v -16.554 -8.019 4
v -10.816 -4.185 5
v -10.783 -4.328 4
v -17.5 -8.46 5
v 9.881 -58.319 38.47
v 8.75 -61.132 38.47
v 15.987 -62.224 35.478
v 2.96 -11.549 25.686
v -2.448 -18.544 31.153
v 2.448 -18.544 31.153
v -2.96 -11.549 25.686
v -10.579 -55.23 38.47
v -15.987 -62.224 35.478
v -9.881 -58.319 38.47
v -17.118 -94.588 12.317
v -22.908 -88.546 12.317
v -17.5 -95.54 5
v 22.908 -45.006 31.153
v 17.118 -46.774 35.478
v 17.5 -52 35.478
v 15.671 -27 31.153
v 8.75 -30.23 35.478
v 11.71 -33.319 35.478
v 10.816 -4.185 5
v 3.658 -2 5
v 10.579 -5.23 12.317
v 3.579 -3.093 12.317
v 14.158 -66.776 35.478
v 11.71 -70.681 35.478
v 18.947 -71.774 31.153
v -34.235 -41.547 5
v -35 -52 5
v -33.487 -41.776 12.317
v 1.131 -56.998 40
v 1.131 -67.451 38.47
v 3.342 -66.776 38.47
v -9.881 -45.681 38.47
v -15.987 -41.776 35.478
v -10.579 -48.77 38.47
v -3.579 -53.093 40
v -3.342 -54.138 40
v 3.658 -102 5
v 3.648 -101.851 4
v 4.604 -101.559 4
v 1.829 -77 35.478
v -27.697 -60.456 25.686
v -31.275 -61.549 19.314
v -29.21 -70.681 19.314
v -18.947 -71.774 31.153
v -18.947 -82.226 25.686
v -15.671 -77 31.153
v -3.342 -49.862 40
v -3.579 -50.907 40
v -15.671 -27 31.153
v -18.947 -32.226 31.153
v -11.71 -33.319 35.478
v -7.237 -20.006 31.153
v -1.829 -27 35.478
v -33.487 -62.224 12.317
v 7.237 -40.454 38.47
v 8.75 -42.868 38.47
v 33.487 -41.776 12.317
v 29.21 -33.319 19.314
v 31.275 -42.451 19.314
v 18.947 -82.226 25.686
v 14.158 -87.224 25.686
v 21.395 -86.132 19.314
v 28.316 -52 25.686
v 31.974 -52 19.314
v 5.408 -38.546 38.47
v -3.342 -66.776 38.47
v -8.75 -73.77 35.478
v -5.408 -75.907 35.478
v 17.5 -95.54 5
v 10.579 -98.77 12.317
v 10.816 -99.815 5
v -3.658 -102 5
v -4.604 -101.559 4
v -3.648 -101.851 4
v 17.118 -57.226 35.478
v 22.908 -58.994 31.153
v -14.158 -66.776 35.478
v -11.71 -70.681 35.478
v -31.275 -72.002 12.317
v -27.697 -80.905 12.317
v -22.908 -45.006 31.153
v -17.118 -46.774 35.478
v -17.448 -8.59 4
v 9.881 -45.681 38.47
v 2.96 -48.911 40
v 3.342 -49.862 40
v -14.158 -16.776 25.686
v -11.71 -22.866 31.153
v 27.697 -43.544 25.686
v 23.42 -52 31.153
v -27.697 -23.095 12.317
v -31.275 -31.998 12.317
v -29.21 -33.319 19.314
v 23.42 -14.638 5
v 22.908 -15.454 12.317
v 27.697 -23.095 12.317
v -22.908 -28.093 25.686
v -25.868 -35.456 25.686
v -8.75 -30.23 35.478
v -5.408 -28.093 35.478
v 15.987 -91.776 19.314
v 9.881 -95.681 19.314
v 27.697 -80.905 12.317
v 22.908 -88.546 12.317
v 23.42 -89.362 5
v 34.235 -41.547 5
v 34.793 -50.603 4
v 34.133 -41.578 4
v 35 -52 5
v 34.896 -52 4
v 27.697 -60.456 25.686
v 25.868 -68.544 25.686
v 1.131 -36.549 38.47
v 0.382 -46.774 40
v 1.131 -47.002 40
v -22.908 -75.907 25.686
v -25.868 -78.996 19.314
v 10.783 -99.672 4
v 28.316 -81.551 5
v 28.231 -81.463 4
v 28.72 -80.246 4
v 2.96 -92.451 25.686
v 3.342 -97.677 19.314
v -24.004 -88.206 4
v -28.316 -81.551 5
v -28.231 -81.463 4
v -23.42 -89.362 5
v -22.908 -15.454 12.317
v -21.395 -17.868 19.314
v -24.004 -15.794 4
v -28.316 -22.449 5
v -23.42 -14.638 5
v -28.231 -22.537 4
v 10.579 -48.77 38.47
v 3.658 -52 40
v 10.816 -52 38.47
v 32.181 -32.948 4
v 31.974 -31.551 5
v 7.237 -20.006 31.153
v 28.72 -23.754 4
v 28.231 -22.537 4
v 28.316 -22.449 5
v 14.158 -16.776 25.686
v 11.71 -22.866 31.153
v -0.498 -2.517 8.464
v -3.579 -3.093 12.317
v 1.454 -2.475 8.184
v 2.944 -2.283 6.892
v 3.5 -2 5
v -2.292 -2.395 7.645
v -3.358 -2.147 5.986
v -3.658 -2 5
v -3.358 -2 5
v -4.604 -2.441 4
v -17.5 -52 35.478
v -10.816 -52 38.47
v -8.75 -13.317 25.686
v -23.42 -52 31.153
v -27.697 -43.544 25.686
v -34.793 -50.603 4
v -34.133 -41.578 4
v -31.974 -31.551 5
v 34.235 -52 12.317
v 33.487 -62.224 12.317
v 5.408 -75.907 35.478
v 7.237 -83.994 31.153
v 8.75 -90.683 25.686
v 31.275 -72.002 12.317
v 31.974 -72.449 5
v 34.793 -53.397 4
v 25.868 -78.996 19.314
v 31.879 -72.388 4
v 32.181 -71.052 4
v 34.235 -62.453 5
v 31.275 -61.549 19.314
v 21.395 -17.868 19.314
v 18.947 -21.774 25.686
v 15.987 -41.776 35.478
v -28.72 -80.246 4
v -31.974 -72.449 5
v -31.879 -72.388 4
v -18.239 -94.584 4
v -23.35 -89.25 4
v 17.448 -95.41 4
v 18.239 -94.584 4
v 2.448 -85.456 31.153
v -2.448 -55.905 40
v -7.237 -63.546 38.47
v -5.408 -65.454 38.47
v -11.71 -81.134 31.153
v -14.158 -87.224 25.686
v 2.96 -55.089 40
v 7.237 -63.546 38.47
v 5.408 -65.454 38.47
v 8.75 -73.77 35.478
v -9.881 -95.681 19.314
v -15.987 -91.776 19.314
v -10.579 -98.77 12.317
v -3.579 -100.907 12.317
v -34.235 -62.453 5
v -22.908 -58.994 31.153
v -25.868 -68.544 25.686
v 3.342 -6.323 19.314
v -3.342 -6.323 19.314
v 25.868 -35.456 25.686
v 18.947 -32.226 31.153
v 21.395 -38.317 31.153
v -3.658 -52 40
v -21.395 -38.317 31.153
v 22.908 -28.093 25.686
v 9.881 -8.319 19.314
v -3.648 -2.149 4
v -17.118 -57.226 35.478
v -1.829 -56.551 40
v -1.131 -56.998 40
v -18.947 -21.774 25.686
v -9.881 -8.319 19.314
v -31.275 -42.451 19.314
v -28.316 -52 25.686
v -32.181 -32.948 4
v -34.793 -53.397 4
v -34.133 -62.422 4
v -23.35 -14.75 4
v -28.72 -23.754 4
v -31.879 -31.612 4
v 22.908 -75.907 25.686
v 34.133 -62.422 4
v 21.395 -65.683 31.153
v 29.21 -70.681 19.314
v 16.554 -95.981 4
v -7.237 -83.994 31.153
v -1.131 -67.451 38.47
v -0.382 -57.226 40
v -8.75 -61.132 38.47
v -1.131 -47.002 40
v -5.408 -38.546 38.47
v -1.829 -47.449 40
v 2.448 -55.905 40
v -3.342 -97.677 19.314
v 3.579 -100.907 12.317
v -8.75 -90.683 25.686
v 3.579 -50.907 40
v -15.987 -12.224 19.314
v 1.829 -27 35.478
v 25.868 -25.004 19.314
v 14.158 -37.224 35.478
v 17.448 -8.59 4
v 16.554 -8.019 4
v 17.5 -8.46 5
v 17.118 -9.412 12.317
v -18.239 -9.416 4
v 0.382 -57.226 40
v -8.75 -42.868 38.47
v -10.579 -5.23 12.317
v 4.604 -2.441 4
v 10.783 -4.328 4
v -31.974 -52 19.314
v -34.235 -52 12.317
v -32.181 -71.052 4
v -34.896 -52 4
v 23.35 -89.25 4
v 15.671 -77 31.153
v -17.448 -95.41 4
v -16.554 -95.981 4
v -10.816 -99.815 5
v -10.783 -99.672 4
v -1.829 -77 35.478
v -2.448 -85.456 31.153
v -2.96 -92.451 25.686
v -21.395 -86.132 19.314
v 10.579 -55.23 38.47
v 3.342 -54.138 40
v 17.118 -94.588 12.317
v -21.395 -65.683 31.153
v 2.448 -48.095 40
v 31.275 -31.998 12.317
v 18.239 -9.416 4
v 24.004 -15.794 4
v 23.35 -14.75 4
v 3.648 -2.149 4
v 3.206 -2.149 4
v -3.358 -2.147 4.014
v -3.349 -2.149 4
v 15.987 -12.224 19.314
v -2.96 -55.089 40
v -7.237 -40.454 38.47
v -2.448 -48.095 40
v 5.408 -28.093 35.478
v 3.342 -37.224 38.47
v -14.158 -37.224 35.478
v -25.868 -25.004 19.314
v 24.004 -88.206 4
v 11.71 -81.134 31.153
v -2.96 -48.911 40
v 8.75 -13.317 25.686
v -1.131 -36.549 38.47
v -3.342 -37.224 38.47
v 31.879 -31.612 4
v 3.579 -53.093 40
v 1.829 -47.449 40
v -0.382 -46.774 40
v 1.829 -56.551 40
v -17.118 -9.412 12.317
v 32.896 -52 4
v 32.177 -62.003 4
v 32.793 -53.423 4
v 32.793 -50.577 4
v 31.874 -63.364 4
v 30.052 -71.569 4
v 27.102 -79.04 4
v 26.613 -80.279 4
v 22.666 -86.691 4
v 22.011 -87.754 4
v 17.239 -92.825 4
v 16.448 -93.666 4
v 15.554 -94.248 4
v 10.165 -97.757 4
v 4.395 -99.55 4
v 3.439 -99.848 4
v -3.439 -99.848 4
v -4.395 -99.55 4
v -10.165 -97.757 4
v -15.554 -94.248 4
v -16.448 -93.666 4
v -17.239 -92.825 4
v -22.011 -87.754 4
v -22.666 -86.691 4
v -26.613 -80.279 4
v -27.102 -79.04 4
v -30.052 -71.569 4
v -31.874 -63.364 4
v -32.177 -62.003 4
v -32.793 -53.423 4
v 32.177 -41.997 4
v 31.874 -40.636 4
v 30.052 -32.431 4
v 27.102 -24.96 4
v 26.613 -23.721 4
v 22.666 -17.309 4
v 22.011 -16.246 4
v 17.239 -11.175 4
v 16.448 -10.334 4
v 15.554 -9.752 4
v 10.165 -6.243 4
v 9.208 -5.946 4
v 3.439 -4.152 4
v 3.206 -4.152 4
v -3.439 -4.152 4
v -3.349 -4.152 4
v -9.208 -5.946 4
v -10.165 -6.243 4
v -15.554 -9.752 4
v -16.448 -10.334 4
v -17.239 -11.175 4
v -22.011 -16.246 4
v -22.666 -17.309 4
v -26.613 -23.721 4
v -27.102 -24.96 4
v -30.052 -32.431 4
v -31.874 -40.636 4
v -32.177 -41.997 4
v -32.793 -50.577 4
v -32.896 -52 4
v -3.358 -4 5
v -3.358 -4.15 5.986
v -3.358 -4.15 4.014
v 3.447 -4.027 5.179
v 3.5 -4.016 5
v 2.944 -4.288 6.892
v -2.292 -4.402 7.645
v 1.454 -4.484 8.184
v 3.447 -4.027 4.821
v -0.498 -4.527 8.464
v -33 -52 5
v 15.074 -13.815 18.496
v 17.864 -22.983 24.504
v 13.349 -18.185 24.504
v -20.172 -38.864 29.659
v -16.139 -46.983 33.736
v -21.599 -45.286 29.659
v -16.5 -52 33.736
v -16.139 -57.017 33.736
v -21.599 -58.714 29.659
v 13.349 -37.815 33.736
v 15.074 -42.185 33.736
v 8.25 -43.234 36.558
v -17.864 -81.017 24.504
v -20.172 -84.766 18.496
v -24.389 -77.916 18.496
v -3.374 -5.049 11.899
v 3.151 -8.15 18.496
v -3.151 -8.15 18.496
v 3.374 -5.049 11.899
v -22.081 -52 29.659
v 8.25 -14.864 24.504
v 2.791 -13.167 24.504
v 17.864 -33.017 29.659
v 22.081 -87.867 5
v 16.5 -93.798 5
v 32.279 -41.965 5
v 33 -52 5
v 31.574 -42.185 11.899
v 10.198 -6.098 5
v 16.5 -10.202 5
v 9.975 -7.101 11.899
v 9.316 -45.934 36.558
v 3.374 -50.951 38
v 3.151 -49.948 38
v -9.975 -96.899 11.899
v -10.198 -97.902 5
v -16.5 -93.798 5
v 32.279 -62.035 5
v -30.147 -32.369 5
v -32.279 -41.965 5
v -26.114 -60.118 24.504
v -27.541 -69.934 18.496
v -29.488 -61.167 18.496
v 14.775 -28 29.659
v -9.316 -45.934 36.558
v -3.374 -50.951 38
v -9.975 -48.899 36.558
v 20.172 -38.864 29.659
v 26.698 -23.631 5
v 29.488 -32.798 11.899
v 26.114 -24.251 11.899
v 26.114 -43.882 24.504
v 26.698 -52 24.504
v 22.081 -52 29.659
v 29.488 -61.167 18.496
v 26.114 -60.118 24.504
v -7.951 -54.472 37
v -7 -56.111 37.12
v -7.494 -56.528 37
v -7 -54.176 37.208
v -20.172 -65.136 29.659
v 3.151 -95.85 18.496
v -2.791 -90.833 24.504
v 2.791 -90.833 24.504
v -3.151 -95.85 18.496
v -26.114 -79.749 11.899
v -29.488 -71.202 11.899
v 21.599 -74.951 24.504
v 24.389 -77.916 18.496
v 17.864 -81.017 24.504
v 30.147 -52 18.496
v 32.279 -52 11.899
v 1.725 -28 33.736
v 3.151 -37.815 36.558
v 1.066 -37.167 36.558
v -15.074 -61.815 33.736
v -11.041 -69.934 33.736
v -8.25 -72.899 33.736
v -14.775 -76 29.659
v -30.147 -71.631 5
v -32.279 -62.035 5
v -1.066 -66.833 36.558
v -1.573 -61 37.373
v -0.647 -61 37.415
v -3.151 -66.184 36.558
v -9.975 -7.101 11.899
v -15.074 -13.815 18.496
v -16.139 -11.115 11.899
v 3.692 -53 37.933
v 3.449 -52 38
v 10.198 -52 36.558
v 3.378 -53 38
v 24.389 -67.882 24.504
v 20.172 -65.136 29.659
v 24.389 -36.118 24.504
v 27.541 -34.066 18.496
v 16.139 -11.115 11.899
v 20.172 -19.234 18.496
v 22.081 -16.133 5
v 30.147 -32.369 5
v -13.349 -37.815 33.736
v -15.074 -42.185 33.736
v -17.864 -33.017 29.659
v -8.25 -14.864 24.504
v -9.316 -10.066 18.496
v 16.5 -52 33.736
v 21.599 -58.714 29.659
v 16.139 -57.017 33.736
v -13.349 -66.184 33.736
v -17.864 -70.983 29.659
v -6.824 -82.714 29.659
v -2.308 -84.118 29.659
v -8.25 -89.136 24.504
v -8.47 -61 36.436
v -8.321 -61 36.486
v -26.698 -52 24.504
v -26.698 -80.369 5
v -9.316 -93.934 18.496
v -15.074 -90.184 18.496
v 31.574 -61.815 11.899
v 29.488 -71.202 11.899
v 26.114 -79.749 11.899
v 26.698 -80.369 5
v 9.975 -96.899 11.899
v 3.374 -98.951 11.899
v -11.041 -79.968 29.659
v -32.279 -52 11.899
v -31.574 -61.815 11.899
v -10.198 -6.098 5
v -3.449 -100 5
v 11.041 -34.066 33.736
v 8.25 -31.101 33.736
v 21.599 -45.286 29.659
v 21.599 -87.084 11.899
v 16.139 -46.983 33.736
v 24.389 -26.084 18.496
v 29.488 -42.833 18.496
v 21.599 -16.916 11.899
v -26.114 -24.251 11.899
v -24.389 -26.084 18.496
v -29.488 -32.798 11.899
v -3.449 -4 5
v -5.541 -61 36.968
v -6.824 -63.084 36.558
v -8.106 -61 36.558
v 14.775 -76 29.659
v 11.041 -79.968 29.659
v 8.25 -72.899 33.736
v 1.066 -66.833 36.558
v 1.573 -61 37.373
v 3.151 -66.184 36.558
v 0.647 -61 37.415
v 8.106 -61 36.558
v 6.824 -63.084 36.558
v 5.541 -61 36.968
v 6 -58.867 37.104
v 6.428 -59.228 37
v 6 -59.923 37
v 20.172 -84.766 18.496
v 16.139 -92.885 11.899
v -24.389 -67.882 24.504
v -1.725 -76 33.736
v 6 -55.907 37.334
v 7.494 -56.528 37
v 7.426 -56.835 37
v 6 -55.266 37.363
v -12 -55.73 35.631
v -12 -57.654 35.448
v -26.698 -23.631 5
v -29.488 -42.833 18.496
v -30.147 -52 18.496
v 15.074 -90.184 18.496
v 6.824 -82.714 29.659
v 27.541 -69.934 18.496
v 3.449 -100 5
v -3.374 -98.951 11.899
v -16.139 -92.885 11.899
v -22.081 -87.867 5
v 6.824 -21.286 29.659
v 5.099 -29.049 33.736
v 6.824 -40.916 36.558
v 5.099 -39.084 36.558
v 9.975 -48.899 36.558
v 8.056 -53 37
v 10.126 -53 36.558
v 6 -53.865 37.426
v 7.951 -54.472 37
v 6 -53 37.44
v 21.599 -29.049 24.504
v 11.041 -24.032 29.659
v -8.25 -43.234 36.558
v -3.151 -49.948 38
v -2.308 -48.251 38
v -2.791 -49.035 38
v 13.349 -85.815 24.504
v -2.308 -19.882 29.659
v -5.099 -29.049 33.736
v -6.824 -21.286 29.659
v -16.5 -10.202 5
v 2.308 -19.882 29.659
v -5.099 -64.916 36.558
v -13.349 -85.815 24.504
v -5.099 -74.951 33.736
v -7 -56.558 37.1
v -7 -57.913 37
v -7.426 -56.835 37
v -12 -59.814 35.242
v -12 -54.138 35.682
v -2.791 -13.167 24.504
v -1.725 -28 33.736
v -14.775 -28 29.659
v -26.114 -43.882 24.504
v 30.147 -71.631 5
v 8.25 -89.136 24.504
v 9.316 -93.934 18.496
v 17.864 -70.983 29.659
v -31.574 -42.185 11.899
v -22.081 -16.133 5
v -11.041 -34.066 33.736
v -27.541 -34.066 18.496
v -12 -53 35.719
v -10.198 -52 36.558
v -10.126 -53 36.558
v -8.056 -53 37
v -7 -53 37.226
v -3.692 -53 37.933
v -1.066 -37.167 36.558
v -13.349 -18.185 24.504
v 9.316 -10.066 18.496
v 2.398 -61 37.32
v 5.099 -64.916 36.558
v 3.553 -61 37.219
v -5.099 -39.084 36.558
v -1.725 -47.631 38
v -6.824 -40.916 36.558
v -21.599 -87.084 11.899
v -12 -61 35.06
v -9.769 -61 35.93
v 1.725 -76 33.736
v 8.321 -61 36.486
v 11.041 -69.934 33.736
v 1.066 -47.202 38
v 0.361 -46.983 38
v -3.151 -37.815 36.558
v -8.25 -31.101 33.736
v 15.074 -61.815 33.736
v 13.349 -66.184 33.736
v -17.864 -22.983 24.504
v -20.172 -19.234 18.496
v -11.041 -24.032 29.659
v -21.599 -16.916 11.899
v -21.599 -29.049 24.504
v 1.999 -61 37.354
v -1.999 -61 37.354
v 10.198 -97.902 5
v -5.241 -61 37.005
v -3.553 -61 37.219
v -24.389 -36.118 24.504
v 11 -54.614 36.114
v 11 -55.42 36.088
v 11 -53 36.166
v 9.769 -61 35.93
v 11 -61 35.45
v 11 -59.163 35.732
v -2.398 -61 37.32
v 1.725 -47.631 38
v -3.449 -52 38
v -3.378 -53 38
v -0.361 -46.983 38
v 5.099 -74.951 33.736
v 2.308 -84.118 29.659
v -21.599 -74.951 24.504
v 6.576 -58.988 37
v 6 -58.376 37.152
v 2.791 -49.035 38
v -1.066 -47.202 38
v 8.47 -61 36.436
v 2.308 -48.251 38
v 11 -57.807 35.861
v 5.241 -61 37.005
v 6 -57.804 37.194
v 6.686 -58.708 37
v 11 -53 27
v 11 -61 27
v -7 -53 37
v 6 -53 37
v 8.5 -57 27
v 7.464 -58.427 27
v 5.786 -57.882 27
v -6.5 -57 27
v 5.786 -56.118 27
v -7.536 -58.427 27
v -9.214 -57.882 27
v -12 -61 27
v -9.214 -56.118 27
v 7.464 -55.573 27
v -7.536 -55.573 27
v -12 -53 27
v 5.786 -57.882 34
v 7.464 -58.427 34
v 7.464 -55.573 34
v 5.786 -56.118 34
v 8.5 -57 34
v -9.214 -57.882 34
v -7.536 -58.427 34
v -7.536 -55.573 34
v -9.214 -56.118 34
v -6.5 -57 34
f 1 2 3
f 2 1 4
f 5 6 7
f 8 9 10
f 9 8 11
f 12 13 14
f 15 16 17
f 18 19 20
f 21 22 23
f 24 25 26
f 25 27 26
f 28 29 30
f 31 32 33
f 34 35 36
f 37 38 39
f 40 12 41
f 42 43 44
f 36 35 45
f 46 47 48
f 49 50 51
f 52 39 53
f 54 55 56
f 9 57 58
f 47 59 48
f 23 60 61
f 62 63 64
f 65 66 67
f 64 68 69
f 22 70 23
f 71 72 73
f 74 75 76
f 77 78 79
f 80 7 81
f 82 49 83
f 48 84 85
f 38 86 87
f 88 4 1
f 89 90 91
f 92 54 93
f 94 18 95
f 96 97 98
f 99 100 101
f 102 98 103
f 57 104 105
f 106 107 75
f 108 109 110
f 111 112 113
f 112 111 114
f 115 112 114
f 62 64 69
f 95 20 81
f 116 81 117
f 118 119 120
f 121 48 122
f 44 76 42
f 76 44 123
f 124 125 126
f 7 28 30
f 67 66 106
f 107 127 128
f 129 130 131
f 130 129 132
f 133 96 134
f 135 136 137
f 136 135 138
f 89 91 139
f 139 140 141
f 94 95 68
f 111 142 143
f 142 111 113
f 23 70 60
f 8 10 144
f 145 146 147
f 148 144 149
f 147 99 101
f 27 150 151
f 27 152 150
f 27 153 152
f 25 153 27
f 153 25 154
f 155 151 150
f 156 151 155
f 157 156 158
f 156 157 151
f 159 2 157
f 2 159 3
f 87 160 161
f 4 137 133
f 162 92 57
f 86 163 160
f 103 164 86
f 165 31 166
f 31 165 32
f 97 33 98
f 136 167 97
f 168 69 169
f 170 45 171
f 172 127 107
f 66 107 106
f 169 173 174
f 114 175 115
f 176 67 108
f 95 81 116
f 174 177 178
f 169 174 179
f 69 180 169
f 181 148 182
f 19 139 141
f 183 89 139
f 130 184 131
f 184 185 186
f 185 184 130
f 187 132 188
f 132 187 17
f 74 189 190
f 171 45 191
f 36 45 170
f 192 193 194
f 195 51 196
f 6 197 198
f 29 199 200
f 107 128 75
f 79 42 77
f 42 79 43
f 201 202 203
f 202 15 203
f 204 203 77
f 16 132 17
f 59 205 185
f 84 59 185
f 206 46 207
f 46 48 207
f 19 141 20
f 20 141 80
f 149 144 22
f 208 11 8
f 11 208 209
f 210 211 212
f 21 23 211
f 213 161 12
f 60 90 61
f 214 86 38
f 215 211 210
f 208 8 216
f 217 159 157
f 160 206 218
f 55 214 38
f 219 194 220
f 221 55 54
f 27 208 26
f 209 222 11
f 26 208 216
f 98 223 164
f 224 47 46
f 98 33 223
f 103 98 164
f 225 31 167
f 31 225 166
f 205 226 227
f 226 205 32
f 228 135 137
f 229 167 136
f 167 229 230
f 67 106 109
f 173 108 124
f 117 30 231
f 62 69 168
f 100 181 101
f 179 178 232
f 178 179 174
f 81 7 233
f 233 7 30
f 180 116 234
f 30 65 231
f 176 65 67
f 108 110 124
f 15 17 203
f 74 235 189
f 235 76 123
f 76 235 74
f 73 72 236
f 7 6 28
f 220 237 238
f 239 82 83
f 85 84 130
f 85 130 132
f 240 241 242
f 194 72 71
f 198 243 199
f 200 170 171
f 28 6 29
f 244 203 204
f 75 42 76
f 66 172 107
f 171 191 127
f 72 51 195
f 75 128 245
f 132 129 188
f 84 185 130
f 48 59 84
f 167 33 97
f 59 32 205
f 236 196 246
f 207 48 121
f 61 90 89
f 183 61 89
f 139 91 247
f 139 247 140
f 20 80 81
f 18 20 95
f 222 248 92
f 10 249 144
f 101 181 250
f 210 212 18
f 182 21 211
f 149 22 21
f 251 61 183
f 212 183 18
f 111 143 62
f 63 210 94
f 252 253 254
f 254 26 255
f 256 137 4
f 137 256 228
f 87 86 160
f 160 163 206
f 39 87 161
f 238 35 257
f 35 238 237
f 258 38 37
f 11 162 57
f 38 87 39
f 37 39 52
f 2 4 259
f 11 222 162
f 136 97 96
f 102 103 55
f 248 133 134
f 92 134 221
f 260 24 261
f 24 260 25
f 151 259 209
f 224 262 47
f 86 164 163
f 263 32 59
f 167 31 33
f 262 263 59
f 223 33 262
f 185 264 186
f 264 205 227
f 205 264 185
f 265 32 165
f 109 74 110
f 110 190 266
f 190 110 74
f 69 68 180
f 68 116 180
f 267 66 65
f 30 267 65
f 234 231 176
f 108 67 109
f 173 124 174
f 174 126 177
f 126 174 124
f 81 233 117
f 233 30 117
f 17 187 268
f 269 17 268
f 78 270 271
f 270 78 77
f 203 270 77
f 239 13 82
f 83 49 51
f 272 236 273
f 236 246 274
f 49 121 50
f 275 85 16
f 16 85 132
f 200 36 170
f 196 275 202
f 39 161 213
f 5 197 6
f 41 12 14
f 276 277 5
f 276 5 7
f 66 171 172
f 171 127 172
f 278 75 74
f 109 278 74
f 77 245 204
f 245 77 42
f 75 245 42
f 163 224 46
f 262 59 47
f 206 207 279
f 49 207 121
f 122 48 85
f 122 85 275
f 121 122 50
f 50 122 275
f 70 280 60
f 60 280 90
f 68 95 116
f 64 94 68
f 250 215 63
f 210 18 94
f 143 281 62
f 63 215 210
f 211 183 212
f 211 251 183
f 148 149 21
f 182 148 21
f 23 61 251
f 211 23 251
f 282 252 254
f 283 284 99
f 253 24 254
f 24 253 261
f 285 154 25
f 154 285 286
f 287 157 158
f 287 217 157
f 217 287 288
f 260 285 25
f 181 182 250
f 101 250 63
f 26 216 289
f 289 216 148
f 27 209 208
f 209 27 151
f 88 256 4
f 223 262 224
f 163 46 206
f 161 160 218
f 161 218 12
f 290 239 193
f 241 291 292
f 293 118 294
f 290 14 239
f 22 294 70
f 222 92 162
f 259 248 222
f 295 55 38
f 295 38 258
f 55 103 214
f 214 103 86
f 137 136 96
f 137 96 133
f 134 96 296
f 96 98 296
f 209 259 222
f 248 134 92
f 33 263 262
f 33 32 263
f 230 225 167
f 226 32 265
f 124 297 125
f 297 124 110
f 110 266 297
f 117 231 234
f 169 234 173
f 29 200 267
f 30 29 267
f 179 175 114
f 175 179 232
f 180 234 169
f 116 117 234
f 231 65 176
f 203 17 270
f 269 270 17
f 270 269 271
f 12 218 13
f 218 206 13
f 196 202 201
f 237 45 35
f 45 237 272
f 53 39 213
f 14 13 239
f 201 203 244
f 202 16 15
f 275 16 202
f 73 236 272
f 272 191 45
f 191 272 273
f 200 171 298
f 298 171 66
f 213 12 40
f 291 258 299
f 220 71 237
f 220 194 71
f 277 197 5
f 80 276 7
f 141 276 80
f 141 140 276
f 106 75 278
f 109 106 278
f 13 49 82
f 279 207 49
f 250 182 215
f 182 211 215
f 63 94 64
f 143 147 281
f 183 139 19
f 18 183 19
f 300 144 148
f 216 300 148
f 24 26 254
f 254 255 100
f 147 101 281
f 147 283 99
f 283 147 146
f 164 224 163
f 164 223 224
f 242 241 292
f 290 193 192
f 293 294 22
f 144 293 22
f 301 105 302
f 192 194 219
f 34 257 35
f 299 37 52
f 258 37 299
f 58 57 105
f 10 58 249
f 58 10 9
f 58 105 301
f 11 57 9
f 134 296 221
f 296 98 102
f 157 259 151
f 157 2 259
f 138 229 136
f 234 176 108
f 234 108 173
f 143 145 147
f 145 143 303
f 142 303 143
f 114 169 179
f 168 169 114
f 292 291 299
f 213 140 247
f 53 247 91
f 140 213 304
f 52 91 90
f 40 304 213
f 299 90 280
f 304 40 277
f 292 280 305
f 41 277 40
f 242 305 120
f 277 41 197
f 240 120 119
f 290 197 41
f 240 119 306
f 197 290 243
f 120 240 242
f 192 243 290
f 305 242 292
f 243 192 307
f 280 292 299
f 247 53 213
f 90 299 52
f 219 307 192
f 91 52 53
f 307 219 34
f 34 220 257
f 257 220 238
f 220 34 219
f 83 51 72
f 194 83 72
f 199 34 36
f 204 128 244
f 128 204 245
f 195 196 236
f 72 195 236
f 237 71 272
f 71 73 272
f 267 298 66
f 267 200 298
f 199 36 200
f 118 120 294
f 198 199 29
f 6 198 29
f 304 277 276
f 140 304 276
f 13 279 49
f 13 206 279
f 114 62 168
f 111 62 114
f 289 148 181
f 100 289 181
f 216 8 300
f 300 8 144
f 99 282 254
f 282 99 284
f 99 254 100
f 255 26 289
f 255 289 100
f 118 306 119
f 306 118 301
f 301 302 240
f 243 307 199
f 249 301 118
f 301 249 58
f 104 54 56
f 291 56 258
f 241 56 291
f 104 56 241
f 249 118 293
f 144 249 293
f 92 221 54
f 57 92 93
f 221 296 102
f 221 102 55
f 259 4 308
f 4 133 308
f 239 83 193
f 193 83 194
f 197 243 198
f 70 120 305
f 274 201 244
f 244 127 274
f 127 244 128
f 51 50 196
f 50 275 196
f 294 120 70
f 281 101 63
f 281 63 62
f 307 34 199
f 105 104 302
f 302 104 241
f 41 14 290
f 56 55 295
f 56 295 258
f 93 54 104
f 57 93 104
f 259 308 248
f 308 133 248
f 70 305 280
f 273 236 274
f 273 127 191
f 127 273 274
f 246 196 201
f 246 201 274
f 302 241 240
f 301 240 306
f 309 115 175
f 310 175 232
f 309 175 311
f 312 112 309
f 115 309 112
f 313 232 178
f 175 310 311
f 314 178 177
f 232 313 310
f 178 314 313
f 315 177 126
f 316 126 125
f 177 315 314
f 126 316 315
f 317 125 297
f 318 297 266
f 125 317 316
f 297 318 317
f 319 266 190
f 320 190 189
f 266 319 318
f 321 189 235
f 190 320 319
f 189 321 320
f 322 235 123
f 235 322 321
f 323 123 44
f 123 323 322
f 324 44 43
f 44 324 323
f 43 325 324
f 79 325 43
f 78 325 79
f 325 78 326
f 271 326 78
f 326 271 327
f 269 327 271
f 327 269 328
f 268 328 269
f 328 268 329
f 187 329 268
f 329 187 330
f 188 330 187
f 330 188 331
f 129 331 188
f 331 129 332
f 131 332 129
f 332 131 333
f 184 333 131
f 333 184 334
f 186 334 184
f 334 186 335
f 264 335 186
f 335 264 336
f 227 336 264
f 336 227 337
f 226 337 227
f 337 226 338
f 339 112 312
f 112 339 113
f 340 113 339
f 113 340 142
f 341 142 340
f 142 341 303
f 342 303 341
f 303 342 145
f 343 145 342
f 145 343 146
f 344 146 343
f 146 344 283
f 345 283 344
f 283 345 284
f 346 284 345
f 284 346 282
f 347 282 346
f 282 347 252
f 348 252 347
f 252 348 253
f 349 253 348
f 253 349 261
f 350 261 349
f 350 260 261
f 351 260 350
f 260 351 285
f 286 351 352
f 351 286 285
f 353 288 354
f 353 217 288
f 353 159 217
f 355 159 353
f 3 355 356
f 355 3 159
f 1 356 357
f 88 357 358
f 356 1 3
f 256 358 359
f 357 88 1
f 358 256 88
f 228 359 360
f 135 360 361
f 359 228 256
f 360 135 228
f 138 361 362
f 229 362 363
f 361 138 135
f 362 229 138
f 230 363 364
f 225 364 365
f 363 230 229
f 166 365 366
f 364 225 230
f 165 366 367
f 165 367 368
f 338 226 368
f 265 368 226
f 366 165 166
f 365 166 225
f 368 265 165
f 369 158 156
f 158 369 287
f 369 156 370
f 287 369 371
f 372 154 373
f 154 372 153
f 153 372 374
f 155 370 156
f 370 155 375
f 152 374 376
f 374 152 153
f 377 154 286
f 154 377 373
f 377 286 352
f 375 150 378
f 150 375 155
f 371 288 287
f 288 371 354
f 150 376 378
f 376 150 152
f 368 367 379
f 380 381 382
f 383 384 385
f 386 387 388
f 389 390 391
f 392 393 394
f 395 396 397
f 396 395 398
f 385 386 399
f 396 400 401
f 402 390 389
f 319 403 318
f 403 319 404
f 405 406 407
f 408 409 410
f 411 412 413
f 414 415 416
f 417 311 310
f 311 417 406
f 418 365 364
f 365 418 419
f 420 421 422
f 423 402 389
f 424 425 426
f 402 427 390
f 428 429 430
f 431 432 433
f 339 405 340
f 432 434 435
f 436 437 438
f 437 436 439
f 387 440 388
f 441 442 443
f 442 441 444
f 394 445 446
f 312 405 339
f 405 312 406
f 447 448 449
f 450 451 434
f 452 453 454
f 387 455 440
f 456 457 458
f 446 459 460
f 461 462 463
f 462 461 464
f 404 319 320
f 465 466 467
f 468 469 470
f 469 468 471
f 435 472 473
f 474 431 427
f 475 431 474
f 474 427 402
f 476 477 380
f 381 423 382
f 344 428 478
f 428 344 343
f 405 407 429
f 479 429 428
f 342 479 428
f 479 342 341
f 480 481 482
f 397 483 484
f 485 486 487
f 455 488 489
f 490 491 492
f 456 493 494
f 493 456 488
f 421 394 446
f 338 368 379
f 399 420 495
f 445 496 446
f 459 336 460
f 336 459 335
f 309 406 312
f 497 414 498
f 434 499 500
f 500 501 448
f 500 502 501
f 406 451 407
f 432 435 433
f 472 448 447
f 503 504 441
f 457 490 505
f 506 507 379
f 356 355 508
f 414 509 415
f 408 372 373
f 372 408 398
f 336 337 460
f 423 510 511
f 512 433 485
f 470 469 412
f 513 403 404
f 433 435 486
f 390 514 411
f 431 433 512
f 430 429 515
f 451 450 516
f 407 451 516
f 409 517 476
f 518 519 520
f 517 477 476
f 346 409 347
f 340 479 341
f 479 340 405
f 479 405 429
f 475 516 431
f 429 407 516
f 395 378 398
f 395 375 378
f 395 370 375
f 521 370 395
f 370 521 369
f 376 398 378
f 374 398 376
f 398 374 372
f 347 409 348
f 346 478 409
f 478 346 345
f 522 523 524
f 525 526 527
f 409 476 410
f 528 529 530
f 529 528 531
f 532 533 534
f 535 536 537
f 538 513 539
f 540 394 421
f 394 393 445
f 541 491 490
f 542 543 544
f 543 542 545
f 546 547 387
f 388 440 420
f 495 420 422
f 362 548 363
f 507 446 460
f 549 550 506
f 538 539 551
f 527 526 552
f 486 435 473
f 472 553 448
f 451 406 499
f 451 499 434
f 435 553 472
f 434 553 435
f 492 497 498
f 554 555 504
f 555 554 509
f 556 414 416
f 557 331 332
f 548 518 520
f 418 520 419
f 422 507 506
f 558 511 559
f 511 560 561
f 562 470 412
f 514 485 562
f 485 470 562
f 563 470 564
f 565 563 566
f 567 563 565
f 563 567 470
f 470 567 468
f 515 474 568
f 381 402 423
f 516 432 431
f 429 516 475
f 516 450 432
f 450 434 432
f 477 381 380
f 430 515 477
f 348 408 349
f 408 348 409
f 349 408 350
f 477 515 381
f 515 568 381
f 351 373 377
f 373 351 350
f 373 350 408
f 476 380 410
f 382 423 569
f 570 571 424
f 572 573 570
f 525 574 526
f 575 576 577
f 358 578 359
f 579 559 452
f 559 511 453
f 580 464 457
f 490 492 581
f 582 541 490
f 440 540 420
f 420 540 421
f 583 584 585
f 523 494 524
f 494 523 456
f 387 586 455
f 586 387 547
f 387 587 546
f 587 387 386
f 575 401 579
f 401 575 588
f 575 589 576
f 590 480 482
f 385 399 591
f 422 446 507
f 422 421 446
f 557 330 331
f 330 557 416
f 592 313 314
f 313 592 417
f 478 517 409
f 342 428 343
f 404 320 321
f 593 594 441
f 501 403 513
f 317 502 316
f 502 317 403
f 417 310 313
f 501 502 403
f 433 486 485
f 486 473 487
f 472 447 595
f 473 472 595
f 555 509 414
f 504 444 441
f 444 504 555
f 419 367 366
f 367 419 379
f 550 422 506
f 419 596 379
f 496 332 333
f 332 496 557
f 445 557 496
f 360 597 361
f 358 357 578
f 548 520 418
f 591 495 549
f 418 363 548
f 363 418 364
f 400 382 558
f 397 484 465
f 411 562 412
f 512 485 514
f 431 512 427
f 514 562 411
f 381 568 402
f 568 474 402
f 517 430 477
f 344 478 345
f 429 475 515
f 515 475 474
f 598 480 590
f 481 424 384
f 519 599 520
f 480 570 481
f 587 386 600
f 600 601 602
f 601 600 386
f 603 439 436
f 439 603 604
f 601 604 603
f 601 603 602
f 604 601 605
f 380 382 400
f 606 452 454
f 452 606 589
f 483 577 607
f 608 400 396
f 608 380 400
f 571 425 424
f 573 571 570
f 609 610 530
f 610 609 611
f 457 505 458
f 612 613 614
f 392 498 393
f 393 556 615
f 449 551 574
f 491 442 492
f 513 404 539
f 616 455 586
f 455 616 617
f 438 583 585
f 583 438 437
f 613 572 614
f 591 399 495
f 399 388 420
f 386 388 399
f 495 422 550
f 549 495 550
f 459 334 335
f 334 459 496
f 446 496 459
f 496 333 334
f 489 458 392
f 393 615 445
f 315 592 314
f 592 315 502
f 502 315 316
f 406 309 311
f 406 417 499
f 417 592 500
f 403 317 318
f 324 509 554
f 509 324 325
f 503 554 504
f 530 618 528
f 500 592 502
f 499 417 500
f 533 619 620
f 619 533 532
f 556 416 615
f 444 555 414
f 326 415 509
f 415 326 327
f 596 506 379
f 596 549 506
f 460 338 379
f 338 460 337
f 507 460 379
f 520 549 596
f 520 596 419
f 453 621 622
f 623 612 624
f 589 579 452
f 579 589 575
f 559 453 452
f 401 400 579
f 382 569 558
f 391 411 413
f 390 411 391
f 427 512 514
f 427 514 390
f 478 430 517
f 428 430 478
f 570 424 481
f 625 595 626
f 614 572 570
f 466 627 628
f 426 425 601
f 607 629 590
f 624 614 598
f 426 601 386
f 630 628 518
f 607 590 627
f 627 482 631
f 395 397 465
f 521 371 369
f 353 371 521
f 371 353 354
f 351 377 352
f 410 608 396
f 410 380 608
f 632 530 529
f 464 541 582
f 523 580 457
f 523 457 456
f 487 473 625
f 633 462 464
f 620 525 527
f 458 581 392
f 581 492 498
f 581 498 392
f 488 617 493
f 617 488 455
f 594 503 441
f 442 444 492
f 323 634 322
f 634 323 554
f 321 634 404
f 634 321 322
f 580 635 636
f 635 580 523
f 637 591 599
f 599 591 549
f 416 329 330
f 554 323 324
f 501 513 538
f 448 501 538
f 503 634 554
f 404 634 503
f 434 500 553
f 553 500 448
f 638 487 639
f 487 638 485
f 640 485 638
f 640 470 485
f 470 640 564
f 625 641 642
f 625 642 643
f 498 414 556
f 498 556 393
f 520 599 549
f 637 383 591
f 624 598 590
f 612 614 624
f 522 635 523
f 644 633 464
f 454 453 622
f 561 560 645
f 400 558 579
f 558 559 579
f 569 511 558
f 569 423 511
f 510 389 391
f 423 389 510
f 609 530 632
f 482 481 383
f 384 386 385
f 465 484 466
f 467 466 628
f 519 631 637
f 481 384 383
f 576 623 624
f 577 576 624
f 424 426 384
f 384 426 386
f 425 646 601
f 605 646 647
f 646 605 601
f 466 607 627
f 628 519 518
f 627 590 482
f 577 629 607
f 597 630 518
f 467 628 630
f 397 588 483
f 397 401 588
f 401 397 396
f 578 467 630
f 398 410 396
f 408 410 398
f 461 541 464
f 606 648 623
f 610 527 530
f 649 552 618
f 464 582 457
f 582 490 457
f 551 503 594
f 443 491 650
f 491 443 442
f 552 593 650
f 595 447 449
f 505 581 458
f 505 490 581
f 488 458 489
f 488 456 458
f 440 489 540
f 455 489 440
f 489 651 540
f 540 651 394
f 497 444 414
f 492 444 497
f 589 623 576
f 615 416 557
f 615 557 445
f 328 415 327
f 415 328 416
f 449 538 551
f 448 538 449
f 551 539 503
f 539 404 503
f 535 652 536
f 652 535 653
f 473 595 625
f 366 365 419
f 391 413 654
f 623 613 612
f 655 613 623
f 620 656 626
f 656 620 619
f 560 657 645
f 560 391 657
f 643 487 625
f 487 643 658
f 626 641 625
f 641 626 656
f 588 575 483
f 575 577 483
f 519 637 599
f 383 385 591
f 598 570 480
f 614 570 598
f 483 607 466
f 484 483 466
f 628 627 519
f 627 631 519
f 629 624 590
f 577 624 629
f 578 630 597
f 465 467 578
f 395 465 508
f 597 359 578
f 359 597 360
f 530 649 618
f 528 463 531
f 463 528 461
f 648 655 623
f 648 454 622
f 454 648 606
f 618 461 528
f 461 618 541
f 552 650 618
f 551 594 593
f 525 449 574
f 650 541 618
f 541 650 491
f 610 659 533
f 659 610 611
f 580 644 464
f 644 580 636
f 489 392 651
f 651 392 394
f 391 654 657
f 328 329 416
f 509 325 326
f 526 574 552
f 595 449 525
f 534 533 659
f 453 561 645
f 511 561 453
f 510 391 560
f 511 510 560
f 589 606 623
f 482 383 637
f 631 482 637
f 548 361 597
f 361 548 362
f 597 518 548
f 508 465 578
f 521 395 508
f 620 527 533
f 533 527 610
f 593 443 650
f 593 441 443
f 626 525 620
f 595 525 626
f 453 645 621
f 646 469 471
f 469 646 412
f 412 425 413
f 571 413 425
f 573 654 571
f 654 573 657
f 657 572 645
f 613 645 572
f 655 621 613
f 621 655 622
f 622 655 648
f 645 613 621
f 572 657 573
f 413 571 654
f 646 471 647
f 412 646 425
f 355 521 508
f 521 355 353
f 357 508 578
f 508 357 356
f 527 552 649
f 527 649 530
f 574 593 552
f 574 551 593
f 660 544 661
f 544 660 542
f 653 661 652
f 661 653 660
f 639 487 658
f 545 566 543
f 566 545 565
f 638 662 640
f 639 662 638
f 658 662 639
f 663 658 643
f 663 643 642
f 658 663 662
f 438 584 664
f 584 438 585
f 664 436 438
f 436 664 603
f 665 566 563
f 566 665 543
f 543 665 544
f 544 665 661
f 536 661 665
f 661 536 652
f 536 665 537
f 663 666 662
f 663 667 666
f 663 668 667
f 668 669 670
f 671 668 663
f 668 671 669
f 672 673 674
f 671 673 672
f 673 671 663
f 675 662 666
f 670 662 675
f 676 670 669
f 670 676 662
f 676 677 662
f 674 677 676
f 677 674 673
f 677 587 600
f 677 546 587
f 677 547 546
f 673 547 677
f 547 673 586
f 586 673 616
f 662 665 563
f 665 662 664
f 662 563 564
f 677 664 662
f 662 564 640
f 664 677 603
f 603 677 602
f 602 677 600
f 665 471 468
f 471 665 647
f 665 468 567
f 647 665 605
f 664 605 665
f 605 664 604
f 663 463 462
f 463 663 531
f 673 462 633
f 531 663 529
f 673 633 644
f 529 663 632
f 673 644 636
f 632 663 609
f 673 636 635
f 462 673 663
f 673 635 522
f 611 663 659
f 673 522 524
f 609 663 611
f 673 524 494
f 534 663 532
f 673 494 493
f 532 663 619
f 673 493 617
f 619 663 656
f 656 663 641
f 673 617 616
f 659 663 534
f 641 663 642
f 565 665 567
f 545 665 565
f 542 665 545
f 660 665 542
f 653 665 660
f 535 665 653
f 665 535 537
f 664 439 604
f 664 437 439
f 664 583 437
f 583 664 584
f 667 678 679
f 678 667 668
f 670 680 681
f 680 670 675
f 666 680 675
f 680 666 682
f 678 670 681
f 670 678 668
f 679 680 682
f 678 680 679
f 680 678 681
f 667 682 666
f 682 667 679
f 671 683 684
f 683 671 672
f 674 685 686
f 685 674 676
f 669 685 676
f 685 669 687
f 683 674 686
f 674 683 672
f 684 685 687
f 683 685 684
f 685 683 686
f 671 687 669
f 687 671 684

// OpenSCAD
standoff=-61;

difference (){

   translate ([+0,-52,5]) resize([70,100,70]) sphere (100);

    translate ([-35,-102,-46]) cube ([90, 120, 50]); // big cube to cut sphere
    translate ([+000,+0,+5]) rotate ([90,0,0])  cylinder (h=20, d=7);//wire hole
    
    translate ([+0,-52,5]) resize([66,96,66]) sphere (100); // put at bottom when done

}

difference(){
    union(){
        translate ([-12,standoff,27]) cube ([23, 8, 10]); // big cube to cut sphere
        translate ([-7,standoff,35]) cube ([13, 8, 3]); // big cube to cut sphere
    }
    translate ([+7,standoff+4,+26]) rotate ([0,0,0])  cylinder (h=8, d=3);//wire hole
    translate ([-8,standoff+4,+26]) rotate ([0,0,0])  cylinder (h=8, d=3);//wire hole
}
